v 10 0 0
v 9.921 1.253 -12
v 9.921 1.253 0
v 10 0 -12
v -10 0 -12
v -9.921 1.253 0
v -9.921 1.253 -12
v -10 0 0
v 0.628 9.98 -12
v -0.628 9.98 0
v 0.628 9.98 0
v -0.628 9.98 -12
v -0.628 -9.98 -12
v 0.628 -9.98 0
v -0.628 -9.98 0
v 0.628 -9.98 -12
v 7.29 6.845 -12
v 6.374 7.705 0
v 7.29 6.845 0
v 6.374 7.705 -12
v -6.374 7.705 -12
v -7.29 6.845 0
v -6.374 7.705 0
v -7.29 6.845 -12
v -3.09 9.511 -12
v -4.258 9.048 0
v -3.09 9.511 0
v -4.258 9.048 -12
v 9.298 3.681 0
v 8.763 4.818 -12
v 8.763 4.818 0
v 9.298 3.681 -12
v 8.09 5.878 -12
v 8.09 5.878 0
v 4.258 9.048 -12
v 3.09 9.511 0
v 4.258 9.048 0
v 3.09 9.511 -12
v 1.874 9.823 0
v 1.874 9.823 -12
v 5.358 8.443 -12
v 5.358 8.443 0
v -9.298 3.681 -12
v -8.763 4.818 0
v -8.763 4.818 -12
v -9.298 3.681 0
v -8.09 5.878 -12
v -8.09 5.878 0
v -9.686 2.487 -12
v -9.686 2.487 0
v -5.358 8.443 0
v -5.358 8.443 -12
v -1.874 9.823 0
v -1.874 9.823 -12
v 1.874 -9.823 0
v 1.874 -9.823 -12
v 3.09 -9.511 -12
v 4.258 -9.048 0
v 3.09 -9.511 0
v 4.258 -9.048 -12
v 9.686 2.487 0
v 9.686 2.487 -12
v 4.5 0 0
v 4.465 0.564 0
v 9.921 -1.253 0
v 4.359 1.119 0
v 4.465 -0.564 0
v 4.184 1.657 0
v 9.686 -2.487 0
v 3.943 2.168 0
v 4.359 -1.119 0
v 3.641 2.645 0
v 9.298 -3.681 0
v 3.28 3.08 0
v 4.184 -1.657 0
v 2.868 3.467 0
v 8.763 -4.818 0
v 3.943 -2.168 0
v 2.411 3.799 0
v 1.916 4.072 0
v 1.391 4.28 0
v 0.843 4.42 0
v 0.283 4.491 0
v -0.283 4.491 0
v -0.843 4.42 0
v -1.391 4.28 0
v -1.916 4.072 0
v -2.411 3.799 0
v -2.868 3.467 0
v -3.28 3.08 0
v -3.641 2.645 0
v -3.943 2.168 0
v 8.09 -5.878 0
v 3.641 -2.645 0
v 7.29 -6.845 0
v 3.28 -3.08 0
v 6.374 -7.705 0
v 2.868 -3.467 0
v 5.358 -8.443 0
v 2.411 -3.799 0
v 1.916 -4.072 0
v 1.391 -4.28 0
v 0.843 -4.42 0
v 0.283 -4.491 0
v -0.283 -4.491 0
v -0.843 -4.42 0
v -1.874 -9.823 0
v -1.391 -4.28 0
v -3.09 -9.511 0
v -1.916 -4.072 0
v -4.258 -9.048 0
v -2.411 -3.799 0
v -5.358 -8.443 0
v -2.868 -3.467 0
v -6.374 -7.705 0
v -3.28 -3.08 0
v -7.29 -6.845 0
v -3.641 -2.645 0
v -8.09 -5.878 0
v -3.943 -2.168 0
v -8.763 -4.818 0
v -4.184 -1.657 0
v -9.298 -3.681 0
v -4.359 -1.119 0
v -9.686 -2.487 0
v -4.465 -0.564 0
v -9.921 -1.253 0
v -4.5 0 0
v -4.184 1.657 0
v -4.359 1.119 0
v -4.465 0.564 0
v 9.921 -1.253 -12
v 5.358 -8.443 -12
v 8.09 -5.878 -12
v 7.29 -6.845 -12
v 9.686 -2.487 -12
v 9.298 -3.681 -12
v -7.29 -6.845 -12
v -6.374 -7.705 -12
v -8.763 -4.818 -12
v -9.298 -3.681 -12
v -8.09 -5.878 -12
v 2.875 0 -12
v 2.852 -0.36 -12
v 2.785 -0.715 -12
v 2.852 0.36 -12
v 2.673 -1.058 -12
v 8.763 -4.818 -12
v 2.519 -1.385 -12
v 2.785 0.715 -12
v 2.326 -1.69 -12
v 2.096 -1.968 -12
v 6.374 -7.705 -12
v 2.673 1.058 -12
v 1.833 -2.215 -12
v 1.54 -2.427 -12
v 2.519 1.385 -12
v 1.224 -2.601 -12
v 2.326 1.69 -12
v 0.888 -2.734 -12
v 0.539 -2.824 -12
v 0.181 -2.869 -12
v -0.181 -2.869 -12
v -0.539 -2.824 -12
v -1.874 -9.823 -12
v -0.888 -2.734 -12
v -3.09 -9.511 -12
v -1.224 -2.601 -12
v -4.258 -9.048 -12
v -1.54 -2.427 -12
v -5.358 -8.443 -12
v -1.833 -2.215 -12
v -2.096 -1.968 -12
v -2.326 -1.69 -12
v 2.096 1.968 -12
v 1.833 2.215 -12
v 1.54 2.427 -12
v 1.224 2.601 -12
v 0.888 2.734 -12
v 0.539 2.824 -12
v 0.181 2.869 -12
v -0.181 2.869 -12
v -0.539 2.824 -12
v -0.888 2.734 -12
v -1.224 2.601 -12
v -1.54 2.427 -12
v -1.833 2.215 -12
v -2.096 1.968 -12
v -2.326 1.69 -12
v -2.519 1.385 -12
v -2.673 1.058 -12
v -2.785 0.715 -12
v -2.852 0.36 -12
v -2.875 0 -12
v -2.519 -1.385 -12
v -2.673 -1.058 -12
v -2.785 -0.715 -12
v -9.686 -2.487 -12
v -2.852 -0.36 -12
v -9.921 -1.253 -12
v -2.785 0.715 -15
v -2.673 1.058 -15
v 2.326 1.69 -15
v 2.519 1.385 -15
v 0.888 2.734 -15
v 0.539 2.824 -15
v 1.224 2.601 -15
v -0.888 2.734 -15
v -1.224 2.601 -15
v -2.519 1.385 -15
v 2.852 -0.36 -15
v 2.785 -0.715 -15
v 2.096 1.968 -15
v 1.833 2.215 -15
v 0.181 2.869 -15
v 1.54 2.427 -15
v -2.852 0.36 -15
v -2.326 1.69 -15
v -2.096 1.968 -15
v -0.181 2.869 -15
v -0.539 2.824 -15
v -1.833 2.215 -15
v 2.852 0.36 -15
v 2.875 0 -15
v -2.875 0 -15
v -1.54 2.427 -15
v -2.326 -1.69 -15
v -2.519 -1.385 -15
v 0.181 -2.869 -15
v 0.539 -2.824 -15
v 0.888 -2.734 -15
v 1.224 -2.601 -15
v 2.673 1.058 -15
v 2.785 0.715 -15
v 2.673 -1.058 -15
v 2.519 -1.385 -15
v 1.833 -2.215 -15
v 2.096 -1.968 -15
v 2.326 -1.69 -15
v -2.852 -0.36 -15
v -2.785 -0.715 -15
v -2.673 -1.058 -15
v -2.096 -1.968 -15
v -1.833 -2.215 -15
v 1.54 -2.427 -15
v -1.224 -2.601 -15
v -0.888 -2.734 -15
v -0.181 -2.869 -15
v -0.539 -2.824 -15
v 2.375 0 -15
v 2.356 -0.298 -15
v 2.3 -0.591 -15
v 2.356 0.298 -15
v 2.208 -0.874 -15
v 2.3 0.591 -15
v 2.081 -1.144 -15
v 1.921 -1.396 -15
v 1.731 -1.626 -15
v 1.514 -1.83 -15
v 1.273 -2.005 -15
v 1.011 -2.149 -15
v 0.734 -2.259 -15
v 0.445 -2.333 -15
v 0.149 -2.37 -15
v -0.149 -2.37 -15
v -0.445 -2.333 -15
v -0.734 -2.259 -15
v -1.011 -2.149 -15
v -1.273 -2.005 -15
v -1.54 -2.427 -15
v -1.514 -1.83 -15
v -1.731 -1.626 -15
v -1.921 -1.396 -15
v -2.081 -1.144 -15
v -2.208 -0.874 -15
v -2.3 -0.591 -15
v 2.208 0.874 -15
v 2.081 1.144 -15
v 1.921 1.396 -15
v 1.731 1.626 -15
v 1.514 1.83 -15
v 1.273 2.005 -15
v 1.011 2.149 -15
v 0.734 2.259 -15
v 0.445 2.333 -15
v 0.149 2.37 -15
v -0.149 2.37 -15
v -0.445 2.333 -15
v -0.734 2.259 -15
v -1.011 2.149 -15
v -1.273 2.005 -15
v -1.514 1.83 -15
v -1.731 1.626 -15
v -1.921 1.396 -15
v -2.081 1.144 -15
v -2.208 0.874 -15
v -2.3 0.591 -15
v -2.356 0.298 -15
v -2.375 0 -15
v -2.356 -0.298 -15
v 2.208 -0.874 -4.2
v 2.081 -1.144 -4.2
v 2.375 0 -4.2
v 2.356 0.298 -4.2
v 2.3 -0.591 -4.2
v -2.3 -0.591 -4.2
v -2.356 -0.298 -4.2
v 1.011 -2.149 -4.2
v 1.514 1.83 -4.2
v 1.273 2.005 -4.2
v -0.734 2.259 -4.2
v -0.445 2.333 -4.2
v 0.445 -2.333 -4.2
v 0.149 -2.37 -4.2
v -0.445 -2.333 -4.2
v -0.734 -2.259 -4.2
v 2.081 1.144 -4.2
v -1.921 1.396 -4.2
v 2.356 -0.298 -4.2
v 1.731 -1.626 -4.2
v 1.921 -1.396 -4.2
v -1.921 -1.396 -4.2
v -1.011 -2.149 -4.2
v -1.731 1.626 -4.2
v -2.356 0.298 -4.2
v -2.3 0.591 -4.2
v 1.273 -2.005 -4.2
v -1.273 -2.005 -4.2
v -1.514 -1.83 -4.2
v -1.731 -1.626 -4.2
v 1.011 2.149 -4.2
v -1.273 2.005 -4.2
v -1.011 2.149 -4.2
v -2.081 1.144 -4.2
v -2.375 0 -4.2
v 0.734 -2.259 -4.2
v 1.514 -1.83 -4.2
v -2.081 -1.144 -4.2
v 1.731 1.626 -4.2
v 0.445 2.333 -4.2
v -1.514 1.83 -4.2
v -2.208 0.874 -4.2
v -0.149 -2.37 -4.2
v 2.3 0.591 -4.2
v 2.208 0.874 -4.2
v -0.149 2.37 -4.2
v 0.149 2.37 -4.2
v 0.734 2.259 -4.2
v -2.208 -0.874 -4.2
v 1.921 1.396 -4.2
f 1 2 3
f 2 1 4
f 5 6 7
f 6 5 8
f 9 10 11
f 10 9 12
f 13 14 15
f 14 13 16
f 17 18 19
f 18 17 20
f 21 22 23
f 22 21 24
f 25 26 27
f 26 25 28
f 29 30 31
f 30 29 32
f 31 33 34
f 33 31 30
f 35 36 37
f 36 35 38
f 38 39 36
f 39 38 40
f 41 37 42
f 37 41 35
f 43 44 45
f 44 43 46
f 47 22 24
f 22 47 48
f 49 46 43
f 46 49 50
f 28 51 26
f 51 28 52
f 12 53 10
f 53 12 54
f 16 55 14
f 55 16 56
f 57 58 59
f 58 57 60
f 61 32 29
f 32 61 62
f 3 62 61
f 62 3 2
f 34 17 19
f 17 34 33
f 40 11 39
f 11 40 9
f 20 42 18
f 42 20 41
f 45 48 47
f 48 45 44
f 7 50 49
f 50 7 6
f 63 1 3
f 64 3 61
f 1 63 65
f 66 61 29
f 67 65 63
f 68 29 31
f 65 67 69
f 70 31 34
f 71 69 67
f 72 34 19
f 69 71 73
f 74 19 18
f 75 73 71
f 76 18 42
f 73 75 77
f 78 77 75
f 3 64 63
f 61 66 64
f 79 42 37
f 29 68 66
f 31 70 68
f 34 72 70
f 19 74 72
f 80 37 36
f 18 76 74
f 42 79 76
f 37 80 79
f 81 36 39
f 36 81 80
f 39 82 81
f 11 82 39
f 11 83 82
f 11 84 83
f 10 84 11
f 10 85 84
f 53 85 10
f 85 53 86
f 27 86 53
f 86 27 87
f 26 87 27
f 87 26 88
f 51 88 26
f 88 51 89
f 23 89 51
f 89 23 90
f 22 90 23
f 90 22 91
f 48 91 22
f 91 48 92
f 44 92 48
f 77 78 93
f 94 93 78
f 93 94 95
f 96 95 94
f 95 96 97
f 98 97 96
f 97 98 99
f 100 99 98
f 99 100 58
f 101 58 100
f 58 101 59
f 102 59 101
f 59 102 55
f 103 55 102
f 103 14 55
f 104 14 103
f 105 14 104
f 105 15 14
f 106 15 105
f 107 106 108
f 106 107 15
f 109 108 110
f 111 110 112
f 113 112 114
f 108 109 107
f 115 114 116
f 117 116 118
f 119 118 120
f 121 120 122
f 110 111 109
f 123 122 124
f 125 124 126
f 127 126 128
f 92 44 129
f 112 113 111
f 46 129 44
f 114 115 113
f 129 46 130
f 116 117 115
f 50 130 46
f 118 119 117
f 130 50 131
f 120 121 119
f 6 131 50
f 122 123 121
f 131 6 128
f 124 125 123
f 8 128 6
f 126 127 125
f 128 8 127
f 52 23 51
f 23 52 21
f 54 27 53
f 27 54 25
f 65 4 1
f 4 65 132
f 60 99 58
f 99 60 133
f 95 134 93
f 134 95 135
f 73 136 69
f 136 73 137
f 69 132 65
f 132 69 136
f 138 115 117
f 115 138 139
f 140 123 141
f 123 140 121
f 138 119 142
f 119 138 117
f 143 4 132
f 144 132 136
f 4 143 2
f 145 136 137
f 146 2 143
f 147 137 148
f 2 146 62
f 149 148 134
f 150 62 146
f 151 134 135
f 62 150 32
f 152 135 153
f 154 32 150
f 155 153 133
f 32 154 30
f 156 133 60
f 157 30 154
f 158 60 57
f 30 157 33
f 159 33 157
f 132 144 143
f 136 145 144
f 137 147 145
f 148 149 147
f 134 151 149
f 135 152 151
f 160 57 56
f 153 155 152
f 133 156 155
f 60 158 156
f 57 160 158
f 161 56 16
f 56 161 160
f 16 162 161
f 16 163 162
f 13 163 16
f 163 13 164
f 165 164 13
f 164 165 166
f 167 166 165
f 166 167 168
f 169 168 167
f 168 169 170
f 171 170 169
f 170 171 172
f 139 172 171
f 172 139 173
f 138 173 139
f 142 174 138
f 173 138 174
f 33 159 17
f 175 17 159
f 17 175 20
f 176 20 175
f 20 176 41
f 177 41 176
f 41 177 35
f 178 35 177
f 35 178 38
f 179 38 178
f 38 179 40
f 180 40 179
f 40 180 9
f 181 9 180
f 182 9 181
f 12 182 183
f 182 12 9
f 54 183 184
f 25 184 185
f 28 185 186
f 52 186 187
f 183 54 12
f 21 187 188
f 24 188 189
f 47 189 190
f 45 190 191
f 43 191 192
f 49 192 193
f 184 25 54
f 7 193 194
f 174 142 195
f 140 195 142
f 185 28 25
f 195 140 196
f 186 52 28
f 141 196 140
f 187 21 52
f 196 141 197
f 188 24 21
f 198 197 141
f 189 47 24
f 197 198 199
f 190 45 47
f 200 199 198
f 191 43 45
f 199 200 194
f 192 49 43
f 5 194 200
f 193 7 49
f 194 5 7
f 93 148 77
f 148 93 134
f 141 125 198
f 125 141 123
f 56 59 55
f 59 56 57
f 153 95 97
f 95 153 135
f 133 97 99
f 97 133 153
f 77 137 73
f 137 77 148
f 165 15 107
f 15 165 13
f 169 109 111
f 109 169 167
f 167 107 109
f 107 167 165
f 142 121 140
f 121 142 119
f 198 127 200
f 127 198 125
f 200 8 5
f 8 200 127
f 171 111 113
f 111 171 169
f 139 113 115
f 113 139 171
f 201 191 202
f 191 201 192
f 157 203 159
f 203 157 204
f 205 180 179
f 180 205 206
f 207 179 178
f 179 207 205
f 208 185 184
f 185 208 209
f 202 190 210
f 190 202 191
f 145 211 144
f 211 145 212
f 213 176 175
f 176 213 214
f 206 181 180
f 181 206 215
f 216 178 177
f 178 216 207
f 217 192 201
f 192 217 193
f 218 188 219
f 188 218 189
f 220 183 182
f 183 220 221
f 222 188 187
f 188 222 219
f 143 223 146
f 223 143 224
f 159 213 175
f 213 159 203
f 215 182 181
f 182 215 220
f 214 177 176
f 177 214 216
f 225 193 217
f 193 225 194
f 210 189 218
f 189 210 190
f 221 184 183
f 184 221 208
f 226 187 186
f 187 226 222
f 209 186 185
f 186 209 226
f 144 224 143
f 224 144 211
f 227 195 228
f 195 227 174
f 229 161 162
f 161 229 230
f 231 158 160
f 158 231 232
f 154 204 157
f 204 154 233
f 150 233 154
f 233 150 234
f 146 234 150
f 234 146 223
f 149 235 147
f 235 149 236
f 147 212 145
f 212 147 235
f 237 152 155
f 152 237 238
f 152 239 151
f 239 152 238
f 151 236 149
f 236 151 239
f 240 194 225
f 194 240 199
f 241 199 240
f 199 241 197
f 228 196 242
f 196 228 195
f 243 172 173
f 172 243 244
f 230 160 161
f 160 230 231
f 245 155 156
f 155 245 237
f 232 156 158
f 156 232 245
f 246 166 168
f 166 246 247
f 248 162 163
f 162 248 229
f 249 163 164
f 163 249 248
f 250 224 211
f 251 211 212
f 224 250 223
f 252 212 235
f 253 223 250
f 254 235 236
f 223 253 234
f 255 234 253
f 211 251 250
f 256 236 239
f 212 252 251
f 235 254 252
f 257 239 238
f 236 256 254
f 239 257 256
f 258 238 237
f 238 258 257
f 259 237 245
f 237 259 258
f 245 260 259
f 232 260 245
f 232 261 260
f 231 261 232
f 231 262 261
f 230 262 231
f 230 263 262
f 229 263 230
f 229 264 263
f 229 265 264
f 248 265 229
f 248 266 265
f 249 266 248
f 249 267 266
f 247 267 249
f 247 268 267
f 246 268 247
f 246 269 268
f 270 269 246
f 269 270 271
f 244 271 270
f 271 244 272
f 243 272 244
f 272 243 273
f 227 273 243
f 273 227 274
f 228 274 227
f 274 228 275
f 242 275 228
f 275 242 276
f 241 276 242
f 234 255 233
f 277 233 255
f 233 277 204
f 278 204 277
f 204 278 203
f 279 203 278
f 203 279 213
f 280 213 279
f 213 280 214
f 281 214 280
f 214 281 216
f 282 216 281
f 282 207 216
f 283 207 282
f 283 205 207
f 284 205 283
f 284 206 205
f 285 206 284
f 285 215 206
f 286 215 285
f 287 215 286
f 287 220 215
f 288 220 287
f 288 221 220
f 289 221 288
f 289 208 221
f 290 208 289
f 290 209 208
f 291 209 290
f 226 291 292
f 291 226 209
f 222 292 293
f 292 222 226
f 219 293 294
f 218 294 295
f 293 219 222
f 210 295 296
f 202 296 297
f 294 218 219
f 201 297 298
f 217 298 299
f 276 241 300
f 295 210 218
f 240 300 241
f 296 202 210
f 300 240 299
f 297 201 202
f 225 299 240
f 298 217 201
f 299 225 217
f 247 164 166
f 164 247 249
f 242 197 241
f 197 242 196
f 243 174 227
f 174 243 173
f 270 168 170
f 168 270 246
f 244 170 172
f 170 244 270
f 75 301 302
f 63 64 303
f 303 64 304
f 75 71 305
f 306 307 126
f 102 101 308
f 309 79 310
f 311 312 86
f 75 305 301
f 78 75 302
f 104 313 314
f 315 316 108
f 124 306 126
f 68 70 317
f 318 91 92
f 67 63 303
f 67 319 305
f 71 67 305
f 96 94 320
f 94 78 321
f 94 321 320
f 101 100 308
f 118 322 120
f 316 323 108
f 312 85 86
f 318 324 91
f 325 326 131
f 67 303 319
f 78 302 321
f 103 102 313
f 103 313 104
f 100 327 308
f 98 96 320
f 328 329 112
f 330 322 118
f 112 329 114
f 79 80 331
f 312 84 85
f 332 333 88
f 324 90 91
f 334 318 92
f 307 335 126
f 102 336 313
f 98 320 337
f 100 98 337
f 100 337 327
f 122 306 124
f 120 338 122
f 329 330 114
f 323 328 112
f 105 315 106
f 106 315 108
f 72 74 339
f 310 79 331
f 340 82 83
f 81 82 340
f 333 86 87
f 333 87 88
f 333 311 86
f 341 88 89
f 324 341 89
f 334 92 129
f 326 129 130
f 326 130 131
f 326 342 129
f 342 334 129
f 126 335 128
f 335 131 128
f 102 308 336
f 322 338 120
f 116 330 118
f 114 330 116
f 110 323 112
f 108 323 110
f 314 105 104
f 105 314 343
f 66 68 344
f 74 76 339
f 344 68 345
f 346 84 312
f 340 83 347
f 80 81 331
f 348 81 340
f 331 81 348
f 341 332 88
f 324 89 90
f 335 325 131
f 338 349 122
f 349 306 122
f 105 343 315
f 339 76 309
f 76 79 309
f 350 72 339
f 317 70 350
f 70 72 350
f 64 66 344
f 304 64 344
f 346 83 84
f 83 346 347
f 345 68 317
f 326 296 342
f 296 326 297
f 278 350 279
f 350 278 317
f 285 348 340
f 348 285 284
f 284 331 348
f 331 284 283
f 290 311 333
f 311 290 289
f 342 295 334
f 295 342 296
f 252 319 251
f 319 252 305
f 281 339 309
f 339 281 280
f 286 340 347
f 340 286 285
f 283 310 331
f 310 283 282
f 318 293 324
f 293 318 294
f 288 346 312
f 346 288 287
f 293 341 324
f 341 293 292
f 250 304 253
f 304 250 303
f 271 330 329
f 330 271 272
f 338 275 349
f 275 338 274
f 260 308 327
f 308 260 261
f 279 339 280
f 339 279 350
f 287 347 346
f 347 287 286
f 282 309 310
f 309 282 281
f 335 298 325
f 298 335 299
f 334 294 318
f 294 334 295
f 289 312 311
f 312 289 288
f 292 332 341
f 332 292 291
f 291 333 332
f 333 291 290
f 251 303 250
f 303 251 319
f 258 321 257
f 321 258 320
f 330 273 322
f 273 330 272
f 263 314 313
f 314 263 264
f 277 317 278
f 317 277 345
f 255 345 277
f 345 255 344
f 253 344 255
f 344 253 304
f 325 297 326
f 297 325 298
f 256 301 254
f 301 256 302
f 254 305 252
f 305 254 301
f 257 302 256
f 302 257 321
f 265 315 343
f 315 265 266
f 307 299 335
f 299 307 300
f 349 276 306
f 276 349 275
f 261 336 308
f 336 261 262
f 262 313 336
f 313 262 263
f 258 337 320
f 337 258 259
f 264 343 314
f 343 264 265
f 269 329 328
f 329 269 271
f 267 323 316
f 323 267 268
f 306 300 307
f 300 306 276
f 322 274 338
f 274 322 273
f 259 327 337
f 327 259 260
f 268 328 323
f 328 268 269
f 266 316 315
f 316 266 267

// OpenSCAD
$fn = 50;

difference() {
	union() {
		translate(v = [0, 0, -12.0]) {
			cylinder(h = 12, r = 10.0);
		}
		#translate(v = [0, 0, -15.0]) {
			cylinder(h = 15, r = 2.875);
		}
	}
	union() {
		translate(v = [0, 0, 0]) {
			rotate(a = [0, 0, 0]) {
				difference() {
					union() {
						translate(v = [0, 0, -15.0]) {
							cylinder(h = 15, r = 2.25);
						}
						translate(v = [0, 0, -4.2]) {
							cylinder(h = 4.2, r1 = 2.375, r2 = 4.5);
						}
						translate(v = [0, 0, -15.0]) {
							cylinder(h = 15, r = 2.375);
						}
						translate(v = [0, 0, -15.0]) {
							cylinder(h = 15, r = 2.25);
						}
					}
					union();
				}
			}
		}
	}
}
